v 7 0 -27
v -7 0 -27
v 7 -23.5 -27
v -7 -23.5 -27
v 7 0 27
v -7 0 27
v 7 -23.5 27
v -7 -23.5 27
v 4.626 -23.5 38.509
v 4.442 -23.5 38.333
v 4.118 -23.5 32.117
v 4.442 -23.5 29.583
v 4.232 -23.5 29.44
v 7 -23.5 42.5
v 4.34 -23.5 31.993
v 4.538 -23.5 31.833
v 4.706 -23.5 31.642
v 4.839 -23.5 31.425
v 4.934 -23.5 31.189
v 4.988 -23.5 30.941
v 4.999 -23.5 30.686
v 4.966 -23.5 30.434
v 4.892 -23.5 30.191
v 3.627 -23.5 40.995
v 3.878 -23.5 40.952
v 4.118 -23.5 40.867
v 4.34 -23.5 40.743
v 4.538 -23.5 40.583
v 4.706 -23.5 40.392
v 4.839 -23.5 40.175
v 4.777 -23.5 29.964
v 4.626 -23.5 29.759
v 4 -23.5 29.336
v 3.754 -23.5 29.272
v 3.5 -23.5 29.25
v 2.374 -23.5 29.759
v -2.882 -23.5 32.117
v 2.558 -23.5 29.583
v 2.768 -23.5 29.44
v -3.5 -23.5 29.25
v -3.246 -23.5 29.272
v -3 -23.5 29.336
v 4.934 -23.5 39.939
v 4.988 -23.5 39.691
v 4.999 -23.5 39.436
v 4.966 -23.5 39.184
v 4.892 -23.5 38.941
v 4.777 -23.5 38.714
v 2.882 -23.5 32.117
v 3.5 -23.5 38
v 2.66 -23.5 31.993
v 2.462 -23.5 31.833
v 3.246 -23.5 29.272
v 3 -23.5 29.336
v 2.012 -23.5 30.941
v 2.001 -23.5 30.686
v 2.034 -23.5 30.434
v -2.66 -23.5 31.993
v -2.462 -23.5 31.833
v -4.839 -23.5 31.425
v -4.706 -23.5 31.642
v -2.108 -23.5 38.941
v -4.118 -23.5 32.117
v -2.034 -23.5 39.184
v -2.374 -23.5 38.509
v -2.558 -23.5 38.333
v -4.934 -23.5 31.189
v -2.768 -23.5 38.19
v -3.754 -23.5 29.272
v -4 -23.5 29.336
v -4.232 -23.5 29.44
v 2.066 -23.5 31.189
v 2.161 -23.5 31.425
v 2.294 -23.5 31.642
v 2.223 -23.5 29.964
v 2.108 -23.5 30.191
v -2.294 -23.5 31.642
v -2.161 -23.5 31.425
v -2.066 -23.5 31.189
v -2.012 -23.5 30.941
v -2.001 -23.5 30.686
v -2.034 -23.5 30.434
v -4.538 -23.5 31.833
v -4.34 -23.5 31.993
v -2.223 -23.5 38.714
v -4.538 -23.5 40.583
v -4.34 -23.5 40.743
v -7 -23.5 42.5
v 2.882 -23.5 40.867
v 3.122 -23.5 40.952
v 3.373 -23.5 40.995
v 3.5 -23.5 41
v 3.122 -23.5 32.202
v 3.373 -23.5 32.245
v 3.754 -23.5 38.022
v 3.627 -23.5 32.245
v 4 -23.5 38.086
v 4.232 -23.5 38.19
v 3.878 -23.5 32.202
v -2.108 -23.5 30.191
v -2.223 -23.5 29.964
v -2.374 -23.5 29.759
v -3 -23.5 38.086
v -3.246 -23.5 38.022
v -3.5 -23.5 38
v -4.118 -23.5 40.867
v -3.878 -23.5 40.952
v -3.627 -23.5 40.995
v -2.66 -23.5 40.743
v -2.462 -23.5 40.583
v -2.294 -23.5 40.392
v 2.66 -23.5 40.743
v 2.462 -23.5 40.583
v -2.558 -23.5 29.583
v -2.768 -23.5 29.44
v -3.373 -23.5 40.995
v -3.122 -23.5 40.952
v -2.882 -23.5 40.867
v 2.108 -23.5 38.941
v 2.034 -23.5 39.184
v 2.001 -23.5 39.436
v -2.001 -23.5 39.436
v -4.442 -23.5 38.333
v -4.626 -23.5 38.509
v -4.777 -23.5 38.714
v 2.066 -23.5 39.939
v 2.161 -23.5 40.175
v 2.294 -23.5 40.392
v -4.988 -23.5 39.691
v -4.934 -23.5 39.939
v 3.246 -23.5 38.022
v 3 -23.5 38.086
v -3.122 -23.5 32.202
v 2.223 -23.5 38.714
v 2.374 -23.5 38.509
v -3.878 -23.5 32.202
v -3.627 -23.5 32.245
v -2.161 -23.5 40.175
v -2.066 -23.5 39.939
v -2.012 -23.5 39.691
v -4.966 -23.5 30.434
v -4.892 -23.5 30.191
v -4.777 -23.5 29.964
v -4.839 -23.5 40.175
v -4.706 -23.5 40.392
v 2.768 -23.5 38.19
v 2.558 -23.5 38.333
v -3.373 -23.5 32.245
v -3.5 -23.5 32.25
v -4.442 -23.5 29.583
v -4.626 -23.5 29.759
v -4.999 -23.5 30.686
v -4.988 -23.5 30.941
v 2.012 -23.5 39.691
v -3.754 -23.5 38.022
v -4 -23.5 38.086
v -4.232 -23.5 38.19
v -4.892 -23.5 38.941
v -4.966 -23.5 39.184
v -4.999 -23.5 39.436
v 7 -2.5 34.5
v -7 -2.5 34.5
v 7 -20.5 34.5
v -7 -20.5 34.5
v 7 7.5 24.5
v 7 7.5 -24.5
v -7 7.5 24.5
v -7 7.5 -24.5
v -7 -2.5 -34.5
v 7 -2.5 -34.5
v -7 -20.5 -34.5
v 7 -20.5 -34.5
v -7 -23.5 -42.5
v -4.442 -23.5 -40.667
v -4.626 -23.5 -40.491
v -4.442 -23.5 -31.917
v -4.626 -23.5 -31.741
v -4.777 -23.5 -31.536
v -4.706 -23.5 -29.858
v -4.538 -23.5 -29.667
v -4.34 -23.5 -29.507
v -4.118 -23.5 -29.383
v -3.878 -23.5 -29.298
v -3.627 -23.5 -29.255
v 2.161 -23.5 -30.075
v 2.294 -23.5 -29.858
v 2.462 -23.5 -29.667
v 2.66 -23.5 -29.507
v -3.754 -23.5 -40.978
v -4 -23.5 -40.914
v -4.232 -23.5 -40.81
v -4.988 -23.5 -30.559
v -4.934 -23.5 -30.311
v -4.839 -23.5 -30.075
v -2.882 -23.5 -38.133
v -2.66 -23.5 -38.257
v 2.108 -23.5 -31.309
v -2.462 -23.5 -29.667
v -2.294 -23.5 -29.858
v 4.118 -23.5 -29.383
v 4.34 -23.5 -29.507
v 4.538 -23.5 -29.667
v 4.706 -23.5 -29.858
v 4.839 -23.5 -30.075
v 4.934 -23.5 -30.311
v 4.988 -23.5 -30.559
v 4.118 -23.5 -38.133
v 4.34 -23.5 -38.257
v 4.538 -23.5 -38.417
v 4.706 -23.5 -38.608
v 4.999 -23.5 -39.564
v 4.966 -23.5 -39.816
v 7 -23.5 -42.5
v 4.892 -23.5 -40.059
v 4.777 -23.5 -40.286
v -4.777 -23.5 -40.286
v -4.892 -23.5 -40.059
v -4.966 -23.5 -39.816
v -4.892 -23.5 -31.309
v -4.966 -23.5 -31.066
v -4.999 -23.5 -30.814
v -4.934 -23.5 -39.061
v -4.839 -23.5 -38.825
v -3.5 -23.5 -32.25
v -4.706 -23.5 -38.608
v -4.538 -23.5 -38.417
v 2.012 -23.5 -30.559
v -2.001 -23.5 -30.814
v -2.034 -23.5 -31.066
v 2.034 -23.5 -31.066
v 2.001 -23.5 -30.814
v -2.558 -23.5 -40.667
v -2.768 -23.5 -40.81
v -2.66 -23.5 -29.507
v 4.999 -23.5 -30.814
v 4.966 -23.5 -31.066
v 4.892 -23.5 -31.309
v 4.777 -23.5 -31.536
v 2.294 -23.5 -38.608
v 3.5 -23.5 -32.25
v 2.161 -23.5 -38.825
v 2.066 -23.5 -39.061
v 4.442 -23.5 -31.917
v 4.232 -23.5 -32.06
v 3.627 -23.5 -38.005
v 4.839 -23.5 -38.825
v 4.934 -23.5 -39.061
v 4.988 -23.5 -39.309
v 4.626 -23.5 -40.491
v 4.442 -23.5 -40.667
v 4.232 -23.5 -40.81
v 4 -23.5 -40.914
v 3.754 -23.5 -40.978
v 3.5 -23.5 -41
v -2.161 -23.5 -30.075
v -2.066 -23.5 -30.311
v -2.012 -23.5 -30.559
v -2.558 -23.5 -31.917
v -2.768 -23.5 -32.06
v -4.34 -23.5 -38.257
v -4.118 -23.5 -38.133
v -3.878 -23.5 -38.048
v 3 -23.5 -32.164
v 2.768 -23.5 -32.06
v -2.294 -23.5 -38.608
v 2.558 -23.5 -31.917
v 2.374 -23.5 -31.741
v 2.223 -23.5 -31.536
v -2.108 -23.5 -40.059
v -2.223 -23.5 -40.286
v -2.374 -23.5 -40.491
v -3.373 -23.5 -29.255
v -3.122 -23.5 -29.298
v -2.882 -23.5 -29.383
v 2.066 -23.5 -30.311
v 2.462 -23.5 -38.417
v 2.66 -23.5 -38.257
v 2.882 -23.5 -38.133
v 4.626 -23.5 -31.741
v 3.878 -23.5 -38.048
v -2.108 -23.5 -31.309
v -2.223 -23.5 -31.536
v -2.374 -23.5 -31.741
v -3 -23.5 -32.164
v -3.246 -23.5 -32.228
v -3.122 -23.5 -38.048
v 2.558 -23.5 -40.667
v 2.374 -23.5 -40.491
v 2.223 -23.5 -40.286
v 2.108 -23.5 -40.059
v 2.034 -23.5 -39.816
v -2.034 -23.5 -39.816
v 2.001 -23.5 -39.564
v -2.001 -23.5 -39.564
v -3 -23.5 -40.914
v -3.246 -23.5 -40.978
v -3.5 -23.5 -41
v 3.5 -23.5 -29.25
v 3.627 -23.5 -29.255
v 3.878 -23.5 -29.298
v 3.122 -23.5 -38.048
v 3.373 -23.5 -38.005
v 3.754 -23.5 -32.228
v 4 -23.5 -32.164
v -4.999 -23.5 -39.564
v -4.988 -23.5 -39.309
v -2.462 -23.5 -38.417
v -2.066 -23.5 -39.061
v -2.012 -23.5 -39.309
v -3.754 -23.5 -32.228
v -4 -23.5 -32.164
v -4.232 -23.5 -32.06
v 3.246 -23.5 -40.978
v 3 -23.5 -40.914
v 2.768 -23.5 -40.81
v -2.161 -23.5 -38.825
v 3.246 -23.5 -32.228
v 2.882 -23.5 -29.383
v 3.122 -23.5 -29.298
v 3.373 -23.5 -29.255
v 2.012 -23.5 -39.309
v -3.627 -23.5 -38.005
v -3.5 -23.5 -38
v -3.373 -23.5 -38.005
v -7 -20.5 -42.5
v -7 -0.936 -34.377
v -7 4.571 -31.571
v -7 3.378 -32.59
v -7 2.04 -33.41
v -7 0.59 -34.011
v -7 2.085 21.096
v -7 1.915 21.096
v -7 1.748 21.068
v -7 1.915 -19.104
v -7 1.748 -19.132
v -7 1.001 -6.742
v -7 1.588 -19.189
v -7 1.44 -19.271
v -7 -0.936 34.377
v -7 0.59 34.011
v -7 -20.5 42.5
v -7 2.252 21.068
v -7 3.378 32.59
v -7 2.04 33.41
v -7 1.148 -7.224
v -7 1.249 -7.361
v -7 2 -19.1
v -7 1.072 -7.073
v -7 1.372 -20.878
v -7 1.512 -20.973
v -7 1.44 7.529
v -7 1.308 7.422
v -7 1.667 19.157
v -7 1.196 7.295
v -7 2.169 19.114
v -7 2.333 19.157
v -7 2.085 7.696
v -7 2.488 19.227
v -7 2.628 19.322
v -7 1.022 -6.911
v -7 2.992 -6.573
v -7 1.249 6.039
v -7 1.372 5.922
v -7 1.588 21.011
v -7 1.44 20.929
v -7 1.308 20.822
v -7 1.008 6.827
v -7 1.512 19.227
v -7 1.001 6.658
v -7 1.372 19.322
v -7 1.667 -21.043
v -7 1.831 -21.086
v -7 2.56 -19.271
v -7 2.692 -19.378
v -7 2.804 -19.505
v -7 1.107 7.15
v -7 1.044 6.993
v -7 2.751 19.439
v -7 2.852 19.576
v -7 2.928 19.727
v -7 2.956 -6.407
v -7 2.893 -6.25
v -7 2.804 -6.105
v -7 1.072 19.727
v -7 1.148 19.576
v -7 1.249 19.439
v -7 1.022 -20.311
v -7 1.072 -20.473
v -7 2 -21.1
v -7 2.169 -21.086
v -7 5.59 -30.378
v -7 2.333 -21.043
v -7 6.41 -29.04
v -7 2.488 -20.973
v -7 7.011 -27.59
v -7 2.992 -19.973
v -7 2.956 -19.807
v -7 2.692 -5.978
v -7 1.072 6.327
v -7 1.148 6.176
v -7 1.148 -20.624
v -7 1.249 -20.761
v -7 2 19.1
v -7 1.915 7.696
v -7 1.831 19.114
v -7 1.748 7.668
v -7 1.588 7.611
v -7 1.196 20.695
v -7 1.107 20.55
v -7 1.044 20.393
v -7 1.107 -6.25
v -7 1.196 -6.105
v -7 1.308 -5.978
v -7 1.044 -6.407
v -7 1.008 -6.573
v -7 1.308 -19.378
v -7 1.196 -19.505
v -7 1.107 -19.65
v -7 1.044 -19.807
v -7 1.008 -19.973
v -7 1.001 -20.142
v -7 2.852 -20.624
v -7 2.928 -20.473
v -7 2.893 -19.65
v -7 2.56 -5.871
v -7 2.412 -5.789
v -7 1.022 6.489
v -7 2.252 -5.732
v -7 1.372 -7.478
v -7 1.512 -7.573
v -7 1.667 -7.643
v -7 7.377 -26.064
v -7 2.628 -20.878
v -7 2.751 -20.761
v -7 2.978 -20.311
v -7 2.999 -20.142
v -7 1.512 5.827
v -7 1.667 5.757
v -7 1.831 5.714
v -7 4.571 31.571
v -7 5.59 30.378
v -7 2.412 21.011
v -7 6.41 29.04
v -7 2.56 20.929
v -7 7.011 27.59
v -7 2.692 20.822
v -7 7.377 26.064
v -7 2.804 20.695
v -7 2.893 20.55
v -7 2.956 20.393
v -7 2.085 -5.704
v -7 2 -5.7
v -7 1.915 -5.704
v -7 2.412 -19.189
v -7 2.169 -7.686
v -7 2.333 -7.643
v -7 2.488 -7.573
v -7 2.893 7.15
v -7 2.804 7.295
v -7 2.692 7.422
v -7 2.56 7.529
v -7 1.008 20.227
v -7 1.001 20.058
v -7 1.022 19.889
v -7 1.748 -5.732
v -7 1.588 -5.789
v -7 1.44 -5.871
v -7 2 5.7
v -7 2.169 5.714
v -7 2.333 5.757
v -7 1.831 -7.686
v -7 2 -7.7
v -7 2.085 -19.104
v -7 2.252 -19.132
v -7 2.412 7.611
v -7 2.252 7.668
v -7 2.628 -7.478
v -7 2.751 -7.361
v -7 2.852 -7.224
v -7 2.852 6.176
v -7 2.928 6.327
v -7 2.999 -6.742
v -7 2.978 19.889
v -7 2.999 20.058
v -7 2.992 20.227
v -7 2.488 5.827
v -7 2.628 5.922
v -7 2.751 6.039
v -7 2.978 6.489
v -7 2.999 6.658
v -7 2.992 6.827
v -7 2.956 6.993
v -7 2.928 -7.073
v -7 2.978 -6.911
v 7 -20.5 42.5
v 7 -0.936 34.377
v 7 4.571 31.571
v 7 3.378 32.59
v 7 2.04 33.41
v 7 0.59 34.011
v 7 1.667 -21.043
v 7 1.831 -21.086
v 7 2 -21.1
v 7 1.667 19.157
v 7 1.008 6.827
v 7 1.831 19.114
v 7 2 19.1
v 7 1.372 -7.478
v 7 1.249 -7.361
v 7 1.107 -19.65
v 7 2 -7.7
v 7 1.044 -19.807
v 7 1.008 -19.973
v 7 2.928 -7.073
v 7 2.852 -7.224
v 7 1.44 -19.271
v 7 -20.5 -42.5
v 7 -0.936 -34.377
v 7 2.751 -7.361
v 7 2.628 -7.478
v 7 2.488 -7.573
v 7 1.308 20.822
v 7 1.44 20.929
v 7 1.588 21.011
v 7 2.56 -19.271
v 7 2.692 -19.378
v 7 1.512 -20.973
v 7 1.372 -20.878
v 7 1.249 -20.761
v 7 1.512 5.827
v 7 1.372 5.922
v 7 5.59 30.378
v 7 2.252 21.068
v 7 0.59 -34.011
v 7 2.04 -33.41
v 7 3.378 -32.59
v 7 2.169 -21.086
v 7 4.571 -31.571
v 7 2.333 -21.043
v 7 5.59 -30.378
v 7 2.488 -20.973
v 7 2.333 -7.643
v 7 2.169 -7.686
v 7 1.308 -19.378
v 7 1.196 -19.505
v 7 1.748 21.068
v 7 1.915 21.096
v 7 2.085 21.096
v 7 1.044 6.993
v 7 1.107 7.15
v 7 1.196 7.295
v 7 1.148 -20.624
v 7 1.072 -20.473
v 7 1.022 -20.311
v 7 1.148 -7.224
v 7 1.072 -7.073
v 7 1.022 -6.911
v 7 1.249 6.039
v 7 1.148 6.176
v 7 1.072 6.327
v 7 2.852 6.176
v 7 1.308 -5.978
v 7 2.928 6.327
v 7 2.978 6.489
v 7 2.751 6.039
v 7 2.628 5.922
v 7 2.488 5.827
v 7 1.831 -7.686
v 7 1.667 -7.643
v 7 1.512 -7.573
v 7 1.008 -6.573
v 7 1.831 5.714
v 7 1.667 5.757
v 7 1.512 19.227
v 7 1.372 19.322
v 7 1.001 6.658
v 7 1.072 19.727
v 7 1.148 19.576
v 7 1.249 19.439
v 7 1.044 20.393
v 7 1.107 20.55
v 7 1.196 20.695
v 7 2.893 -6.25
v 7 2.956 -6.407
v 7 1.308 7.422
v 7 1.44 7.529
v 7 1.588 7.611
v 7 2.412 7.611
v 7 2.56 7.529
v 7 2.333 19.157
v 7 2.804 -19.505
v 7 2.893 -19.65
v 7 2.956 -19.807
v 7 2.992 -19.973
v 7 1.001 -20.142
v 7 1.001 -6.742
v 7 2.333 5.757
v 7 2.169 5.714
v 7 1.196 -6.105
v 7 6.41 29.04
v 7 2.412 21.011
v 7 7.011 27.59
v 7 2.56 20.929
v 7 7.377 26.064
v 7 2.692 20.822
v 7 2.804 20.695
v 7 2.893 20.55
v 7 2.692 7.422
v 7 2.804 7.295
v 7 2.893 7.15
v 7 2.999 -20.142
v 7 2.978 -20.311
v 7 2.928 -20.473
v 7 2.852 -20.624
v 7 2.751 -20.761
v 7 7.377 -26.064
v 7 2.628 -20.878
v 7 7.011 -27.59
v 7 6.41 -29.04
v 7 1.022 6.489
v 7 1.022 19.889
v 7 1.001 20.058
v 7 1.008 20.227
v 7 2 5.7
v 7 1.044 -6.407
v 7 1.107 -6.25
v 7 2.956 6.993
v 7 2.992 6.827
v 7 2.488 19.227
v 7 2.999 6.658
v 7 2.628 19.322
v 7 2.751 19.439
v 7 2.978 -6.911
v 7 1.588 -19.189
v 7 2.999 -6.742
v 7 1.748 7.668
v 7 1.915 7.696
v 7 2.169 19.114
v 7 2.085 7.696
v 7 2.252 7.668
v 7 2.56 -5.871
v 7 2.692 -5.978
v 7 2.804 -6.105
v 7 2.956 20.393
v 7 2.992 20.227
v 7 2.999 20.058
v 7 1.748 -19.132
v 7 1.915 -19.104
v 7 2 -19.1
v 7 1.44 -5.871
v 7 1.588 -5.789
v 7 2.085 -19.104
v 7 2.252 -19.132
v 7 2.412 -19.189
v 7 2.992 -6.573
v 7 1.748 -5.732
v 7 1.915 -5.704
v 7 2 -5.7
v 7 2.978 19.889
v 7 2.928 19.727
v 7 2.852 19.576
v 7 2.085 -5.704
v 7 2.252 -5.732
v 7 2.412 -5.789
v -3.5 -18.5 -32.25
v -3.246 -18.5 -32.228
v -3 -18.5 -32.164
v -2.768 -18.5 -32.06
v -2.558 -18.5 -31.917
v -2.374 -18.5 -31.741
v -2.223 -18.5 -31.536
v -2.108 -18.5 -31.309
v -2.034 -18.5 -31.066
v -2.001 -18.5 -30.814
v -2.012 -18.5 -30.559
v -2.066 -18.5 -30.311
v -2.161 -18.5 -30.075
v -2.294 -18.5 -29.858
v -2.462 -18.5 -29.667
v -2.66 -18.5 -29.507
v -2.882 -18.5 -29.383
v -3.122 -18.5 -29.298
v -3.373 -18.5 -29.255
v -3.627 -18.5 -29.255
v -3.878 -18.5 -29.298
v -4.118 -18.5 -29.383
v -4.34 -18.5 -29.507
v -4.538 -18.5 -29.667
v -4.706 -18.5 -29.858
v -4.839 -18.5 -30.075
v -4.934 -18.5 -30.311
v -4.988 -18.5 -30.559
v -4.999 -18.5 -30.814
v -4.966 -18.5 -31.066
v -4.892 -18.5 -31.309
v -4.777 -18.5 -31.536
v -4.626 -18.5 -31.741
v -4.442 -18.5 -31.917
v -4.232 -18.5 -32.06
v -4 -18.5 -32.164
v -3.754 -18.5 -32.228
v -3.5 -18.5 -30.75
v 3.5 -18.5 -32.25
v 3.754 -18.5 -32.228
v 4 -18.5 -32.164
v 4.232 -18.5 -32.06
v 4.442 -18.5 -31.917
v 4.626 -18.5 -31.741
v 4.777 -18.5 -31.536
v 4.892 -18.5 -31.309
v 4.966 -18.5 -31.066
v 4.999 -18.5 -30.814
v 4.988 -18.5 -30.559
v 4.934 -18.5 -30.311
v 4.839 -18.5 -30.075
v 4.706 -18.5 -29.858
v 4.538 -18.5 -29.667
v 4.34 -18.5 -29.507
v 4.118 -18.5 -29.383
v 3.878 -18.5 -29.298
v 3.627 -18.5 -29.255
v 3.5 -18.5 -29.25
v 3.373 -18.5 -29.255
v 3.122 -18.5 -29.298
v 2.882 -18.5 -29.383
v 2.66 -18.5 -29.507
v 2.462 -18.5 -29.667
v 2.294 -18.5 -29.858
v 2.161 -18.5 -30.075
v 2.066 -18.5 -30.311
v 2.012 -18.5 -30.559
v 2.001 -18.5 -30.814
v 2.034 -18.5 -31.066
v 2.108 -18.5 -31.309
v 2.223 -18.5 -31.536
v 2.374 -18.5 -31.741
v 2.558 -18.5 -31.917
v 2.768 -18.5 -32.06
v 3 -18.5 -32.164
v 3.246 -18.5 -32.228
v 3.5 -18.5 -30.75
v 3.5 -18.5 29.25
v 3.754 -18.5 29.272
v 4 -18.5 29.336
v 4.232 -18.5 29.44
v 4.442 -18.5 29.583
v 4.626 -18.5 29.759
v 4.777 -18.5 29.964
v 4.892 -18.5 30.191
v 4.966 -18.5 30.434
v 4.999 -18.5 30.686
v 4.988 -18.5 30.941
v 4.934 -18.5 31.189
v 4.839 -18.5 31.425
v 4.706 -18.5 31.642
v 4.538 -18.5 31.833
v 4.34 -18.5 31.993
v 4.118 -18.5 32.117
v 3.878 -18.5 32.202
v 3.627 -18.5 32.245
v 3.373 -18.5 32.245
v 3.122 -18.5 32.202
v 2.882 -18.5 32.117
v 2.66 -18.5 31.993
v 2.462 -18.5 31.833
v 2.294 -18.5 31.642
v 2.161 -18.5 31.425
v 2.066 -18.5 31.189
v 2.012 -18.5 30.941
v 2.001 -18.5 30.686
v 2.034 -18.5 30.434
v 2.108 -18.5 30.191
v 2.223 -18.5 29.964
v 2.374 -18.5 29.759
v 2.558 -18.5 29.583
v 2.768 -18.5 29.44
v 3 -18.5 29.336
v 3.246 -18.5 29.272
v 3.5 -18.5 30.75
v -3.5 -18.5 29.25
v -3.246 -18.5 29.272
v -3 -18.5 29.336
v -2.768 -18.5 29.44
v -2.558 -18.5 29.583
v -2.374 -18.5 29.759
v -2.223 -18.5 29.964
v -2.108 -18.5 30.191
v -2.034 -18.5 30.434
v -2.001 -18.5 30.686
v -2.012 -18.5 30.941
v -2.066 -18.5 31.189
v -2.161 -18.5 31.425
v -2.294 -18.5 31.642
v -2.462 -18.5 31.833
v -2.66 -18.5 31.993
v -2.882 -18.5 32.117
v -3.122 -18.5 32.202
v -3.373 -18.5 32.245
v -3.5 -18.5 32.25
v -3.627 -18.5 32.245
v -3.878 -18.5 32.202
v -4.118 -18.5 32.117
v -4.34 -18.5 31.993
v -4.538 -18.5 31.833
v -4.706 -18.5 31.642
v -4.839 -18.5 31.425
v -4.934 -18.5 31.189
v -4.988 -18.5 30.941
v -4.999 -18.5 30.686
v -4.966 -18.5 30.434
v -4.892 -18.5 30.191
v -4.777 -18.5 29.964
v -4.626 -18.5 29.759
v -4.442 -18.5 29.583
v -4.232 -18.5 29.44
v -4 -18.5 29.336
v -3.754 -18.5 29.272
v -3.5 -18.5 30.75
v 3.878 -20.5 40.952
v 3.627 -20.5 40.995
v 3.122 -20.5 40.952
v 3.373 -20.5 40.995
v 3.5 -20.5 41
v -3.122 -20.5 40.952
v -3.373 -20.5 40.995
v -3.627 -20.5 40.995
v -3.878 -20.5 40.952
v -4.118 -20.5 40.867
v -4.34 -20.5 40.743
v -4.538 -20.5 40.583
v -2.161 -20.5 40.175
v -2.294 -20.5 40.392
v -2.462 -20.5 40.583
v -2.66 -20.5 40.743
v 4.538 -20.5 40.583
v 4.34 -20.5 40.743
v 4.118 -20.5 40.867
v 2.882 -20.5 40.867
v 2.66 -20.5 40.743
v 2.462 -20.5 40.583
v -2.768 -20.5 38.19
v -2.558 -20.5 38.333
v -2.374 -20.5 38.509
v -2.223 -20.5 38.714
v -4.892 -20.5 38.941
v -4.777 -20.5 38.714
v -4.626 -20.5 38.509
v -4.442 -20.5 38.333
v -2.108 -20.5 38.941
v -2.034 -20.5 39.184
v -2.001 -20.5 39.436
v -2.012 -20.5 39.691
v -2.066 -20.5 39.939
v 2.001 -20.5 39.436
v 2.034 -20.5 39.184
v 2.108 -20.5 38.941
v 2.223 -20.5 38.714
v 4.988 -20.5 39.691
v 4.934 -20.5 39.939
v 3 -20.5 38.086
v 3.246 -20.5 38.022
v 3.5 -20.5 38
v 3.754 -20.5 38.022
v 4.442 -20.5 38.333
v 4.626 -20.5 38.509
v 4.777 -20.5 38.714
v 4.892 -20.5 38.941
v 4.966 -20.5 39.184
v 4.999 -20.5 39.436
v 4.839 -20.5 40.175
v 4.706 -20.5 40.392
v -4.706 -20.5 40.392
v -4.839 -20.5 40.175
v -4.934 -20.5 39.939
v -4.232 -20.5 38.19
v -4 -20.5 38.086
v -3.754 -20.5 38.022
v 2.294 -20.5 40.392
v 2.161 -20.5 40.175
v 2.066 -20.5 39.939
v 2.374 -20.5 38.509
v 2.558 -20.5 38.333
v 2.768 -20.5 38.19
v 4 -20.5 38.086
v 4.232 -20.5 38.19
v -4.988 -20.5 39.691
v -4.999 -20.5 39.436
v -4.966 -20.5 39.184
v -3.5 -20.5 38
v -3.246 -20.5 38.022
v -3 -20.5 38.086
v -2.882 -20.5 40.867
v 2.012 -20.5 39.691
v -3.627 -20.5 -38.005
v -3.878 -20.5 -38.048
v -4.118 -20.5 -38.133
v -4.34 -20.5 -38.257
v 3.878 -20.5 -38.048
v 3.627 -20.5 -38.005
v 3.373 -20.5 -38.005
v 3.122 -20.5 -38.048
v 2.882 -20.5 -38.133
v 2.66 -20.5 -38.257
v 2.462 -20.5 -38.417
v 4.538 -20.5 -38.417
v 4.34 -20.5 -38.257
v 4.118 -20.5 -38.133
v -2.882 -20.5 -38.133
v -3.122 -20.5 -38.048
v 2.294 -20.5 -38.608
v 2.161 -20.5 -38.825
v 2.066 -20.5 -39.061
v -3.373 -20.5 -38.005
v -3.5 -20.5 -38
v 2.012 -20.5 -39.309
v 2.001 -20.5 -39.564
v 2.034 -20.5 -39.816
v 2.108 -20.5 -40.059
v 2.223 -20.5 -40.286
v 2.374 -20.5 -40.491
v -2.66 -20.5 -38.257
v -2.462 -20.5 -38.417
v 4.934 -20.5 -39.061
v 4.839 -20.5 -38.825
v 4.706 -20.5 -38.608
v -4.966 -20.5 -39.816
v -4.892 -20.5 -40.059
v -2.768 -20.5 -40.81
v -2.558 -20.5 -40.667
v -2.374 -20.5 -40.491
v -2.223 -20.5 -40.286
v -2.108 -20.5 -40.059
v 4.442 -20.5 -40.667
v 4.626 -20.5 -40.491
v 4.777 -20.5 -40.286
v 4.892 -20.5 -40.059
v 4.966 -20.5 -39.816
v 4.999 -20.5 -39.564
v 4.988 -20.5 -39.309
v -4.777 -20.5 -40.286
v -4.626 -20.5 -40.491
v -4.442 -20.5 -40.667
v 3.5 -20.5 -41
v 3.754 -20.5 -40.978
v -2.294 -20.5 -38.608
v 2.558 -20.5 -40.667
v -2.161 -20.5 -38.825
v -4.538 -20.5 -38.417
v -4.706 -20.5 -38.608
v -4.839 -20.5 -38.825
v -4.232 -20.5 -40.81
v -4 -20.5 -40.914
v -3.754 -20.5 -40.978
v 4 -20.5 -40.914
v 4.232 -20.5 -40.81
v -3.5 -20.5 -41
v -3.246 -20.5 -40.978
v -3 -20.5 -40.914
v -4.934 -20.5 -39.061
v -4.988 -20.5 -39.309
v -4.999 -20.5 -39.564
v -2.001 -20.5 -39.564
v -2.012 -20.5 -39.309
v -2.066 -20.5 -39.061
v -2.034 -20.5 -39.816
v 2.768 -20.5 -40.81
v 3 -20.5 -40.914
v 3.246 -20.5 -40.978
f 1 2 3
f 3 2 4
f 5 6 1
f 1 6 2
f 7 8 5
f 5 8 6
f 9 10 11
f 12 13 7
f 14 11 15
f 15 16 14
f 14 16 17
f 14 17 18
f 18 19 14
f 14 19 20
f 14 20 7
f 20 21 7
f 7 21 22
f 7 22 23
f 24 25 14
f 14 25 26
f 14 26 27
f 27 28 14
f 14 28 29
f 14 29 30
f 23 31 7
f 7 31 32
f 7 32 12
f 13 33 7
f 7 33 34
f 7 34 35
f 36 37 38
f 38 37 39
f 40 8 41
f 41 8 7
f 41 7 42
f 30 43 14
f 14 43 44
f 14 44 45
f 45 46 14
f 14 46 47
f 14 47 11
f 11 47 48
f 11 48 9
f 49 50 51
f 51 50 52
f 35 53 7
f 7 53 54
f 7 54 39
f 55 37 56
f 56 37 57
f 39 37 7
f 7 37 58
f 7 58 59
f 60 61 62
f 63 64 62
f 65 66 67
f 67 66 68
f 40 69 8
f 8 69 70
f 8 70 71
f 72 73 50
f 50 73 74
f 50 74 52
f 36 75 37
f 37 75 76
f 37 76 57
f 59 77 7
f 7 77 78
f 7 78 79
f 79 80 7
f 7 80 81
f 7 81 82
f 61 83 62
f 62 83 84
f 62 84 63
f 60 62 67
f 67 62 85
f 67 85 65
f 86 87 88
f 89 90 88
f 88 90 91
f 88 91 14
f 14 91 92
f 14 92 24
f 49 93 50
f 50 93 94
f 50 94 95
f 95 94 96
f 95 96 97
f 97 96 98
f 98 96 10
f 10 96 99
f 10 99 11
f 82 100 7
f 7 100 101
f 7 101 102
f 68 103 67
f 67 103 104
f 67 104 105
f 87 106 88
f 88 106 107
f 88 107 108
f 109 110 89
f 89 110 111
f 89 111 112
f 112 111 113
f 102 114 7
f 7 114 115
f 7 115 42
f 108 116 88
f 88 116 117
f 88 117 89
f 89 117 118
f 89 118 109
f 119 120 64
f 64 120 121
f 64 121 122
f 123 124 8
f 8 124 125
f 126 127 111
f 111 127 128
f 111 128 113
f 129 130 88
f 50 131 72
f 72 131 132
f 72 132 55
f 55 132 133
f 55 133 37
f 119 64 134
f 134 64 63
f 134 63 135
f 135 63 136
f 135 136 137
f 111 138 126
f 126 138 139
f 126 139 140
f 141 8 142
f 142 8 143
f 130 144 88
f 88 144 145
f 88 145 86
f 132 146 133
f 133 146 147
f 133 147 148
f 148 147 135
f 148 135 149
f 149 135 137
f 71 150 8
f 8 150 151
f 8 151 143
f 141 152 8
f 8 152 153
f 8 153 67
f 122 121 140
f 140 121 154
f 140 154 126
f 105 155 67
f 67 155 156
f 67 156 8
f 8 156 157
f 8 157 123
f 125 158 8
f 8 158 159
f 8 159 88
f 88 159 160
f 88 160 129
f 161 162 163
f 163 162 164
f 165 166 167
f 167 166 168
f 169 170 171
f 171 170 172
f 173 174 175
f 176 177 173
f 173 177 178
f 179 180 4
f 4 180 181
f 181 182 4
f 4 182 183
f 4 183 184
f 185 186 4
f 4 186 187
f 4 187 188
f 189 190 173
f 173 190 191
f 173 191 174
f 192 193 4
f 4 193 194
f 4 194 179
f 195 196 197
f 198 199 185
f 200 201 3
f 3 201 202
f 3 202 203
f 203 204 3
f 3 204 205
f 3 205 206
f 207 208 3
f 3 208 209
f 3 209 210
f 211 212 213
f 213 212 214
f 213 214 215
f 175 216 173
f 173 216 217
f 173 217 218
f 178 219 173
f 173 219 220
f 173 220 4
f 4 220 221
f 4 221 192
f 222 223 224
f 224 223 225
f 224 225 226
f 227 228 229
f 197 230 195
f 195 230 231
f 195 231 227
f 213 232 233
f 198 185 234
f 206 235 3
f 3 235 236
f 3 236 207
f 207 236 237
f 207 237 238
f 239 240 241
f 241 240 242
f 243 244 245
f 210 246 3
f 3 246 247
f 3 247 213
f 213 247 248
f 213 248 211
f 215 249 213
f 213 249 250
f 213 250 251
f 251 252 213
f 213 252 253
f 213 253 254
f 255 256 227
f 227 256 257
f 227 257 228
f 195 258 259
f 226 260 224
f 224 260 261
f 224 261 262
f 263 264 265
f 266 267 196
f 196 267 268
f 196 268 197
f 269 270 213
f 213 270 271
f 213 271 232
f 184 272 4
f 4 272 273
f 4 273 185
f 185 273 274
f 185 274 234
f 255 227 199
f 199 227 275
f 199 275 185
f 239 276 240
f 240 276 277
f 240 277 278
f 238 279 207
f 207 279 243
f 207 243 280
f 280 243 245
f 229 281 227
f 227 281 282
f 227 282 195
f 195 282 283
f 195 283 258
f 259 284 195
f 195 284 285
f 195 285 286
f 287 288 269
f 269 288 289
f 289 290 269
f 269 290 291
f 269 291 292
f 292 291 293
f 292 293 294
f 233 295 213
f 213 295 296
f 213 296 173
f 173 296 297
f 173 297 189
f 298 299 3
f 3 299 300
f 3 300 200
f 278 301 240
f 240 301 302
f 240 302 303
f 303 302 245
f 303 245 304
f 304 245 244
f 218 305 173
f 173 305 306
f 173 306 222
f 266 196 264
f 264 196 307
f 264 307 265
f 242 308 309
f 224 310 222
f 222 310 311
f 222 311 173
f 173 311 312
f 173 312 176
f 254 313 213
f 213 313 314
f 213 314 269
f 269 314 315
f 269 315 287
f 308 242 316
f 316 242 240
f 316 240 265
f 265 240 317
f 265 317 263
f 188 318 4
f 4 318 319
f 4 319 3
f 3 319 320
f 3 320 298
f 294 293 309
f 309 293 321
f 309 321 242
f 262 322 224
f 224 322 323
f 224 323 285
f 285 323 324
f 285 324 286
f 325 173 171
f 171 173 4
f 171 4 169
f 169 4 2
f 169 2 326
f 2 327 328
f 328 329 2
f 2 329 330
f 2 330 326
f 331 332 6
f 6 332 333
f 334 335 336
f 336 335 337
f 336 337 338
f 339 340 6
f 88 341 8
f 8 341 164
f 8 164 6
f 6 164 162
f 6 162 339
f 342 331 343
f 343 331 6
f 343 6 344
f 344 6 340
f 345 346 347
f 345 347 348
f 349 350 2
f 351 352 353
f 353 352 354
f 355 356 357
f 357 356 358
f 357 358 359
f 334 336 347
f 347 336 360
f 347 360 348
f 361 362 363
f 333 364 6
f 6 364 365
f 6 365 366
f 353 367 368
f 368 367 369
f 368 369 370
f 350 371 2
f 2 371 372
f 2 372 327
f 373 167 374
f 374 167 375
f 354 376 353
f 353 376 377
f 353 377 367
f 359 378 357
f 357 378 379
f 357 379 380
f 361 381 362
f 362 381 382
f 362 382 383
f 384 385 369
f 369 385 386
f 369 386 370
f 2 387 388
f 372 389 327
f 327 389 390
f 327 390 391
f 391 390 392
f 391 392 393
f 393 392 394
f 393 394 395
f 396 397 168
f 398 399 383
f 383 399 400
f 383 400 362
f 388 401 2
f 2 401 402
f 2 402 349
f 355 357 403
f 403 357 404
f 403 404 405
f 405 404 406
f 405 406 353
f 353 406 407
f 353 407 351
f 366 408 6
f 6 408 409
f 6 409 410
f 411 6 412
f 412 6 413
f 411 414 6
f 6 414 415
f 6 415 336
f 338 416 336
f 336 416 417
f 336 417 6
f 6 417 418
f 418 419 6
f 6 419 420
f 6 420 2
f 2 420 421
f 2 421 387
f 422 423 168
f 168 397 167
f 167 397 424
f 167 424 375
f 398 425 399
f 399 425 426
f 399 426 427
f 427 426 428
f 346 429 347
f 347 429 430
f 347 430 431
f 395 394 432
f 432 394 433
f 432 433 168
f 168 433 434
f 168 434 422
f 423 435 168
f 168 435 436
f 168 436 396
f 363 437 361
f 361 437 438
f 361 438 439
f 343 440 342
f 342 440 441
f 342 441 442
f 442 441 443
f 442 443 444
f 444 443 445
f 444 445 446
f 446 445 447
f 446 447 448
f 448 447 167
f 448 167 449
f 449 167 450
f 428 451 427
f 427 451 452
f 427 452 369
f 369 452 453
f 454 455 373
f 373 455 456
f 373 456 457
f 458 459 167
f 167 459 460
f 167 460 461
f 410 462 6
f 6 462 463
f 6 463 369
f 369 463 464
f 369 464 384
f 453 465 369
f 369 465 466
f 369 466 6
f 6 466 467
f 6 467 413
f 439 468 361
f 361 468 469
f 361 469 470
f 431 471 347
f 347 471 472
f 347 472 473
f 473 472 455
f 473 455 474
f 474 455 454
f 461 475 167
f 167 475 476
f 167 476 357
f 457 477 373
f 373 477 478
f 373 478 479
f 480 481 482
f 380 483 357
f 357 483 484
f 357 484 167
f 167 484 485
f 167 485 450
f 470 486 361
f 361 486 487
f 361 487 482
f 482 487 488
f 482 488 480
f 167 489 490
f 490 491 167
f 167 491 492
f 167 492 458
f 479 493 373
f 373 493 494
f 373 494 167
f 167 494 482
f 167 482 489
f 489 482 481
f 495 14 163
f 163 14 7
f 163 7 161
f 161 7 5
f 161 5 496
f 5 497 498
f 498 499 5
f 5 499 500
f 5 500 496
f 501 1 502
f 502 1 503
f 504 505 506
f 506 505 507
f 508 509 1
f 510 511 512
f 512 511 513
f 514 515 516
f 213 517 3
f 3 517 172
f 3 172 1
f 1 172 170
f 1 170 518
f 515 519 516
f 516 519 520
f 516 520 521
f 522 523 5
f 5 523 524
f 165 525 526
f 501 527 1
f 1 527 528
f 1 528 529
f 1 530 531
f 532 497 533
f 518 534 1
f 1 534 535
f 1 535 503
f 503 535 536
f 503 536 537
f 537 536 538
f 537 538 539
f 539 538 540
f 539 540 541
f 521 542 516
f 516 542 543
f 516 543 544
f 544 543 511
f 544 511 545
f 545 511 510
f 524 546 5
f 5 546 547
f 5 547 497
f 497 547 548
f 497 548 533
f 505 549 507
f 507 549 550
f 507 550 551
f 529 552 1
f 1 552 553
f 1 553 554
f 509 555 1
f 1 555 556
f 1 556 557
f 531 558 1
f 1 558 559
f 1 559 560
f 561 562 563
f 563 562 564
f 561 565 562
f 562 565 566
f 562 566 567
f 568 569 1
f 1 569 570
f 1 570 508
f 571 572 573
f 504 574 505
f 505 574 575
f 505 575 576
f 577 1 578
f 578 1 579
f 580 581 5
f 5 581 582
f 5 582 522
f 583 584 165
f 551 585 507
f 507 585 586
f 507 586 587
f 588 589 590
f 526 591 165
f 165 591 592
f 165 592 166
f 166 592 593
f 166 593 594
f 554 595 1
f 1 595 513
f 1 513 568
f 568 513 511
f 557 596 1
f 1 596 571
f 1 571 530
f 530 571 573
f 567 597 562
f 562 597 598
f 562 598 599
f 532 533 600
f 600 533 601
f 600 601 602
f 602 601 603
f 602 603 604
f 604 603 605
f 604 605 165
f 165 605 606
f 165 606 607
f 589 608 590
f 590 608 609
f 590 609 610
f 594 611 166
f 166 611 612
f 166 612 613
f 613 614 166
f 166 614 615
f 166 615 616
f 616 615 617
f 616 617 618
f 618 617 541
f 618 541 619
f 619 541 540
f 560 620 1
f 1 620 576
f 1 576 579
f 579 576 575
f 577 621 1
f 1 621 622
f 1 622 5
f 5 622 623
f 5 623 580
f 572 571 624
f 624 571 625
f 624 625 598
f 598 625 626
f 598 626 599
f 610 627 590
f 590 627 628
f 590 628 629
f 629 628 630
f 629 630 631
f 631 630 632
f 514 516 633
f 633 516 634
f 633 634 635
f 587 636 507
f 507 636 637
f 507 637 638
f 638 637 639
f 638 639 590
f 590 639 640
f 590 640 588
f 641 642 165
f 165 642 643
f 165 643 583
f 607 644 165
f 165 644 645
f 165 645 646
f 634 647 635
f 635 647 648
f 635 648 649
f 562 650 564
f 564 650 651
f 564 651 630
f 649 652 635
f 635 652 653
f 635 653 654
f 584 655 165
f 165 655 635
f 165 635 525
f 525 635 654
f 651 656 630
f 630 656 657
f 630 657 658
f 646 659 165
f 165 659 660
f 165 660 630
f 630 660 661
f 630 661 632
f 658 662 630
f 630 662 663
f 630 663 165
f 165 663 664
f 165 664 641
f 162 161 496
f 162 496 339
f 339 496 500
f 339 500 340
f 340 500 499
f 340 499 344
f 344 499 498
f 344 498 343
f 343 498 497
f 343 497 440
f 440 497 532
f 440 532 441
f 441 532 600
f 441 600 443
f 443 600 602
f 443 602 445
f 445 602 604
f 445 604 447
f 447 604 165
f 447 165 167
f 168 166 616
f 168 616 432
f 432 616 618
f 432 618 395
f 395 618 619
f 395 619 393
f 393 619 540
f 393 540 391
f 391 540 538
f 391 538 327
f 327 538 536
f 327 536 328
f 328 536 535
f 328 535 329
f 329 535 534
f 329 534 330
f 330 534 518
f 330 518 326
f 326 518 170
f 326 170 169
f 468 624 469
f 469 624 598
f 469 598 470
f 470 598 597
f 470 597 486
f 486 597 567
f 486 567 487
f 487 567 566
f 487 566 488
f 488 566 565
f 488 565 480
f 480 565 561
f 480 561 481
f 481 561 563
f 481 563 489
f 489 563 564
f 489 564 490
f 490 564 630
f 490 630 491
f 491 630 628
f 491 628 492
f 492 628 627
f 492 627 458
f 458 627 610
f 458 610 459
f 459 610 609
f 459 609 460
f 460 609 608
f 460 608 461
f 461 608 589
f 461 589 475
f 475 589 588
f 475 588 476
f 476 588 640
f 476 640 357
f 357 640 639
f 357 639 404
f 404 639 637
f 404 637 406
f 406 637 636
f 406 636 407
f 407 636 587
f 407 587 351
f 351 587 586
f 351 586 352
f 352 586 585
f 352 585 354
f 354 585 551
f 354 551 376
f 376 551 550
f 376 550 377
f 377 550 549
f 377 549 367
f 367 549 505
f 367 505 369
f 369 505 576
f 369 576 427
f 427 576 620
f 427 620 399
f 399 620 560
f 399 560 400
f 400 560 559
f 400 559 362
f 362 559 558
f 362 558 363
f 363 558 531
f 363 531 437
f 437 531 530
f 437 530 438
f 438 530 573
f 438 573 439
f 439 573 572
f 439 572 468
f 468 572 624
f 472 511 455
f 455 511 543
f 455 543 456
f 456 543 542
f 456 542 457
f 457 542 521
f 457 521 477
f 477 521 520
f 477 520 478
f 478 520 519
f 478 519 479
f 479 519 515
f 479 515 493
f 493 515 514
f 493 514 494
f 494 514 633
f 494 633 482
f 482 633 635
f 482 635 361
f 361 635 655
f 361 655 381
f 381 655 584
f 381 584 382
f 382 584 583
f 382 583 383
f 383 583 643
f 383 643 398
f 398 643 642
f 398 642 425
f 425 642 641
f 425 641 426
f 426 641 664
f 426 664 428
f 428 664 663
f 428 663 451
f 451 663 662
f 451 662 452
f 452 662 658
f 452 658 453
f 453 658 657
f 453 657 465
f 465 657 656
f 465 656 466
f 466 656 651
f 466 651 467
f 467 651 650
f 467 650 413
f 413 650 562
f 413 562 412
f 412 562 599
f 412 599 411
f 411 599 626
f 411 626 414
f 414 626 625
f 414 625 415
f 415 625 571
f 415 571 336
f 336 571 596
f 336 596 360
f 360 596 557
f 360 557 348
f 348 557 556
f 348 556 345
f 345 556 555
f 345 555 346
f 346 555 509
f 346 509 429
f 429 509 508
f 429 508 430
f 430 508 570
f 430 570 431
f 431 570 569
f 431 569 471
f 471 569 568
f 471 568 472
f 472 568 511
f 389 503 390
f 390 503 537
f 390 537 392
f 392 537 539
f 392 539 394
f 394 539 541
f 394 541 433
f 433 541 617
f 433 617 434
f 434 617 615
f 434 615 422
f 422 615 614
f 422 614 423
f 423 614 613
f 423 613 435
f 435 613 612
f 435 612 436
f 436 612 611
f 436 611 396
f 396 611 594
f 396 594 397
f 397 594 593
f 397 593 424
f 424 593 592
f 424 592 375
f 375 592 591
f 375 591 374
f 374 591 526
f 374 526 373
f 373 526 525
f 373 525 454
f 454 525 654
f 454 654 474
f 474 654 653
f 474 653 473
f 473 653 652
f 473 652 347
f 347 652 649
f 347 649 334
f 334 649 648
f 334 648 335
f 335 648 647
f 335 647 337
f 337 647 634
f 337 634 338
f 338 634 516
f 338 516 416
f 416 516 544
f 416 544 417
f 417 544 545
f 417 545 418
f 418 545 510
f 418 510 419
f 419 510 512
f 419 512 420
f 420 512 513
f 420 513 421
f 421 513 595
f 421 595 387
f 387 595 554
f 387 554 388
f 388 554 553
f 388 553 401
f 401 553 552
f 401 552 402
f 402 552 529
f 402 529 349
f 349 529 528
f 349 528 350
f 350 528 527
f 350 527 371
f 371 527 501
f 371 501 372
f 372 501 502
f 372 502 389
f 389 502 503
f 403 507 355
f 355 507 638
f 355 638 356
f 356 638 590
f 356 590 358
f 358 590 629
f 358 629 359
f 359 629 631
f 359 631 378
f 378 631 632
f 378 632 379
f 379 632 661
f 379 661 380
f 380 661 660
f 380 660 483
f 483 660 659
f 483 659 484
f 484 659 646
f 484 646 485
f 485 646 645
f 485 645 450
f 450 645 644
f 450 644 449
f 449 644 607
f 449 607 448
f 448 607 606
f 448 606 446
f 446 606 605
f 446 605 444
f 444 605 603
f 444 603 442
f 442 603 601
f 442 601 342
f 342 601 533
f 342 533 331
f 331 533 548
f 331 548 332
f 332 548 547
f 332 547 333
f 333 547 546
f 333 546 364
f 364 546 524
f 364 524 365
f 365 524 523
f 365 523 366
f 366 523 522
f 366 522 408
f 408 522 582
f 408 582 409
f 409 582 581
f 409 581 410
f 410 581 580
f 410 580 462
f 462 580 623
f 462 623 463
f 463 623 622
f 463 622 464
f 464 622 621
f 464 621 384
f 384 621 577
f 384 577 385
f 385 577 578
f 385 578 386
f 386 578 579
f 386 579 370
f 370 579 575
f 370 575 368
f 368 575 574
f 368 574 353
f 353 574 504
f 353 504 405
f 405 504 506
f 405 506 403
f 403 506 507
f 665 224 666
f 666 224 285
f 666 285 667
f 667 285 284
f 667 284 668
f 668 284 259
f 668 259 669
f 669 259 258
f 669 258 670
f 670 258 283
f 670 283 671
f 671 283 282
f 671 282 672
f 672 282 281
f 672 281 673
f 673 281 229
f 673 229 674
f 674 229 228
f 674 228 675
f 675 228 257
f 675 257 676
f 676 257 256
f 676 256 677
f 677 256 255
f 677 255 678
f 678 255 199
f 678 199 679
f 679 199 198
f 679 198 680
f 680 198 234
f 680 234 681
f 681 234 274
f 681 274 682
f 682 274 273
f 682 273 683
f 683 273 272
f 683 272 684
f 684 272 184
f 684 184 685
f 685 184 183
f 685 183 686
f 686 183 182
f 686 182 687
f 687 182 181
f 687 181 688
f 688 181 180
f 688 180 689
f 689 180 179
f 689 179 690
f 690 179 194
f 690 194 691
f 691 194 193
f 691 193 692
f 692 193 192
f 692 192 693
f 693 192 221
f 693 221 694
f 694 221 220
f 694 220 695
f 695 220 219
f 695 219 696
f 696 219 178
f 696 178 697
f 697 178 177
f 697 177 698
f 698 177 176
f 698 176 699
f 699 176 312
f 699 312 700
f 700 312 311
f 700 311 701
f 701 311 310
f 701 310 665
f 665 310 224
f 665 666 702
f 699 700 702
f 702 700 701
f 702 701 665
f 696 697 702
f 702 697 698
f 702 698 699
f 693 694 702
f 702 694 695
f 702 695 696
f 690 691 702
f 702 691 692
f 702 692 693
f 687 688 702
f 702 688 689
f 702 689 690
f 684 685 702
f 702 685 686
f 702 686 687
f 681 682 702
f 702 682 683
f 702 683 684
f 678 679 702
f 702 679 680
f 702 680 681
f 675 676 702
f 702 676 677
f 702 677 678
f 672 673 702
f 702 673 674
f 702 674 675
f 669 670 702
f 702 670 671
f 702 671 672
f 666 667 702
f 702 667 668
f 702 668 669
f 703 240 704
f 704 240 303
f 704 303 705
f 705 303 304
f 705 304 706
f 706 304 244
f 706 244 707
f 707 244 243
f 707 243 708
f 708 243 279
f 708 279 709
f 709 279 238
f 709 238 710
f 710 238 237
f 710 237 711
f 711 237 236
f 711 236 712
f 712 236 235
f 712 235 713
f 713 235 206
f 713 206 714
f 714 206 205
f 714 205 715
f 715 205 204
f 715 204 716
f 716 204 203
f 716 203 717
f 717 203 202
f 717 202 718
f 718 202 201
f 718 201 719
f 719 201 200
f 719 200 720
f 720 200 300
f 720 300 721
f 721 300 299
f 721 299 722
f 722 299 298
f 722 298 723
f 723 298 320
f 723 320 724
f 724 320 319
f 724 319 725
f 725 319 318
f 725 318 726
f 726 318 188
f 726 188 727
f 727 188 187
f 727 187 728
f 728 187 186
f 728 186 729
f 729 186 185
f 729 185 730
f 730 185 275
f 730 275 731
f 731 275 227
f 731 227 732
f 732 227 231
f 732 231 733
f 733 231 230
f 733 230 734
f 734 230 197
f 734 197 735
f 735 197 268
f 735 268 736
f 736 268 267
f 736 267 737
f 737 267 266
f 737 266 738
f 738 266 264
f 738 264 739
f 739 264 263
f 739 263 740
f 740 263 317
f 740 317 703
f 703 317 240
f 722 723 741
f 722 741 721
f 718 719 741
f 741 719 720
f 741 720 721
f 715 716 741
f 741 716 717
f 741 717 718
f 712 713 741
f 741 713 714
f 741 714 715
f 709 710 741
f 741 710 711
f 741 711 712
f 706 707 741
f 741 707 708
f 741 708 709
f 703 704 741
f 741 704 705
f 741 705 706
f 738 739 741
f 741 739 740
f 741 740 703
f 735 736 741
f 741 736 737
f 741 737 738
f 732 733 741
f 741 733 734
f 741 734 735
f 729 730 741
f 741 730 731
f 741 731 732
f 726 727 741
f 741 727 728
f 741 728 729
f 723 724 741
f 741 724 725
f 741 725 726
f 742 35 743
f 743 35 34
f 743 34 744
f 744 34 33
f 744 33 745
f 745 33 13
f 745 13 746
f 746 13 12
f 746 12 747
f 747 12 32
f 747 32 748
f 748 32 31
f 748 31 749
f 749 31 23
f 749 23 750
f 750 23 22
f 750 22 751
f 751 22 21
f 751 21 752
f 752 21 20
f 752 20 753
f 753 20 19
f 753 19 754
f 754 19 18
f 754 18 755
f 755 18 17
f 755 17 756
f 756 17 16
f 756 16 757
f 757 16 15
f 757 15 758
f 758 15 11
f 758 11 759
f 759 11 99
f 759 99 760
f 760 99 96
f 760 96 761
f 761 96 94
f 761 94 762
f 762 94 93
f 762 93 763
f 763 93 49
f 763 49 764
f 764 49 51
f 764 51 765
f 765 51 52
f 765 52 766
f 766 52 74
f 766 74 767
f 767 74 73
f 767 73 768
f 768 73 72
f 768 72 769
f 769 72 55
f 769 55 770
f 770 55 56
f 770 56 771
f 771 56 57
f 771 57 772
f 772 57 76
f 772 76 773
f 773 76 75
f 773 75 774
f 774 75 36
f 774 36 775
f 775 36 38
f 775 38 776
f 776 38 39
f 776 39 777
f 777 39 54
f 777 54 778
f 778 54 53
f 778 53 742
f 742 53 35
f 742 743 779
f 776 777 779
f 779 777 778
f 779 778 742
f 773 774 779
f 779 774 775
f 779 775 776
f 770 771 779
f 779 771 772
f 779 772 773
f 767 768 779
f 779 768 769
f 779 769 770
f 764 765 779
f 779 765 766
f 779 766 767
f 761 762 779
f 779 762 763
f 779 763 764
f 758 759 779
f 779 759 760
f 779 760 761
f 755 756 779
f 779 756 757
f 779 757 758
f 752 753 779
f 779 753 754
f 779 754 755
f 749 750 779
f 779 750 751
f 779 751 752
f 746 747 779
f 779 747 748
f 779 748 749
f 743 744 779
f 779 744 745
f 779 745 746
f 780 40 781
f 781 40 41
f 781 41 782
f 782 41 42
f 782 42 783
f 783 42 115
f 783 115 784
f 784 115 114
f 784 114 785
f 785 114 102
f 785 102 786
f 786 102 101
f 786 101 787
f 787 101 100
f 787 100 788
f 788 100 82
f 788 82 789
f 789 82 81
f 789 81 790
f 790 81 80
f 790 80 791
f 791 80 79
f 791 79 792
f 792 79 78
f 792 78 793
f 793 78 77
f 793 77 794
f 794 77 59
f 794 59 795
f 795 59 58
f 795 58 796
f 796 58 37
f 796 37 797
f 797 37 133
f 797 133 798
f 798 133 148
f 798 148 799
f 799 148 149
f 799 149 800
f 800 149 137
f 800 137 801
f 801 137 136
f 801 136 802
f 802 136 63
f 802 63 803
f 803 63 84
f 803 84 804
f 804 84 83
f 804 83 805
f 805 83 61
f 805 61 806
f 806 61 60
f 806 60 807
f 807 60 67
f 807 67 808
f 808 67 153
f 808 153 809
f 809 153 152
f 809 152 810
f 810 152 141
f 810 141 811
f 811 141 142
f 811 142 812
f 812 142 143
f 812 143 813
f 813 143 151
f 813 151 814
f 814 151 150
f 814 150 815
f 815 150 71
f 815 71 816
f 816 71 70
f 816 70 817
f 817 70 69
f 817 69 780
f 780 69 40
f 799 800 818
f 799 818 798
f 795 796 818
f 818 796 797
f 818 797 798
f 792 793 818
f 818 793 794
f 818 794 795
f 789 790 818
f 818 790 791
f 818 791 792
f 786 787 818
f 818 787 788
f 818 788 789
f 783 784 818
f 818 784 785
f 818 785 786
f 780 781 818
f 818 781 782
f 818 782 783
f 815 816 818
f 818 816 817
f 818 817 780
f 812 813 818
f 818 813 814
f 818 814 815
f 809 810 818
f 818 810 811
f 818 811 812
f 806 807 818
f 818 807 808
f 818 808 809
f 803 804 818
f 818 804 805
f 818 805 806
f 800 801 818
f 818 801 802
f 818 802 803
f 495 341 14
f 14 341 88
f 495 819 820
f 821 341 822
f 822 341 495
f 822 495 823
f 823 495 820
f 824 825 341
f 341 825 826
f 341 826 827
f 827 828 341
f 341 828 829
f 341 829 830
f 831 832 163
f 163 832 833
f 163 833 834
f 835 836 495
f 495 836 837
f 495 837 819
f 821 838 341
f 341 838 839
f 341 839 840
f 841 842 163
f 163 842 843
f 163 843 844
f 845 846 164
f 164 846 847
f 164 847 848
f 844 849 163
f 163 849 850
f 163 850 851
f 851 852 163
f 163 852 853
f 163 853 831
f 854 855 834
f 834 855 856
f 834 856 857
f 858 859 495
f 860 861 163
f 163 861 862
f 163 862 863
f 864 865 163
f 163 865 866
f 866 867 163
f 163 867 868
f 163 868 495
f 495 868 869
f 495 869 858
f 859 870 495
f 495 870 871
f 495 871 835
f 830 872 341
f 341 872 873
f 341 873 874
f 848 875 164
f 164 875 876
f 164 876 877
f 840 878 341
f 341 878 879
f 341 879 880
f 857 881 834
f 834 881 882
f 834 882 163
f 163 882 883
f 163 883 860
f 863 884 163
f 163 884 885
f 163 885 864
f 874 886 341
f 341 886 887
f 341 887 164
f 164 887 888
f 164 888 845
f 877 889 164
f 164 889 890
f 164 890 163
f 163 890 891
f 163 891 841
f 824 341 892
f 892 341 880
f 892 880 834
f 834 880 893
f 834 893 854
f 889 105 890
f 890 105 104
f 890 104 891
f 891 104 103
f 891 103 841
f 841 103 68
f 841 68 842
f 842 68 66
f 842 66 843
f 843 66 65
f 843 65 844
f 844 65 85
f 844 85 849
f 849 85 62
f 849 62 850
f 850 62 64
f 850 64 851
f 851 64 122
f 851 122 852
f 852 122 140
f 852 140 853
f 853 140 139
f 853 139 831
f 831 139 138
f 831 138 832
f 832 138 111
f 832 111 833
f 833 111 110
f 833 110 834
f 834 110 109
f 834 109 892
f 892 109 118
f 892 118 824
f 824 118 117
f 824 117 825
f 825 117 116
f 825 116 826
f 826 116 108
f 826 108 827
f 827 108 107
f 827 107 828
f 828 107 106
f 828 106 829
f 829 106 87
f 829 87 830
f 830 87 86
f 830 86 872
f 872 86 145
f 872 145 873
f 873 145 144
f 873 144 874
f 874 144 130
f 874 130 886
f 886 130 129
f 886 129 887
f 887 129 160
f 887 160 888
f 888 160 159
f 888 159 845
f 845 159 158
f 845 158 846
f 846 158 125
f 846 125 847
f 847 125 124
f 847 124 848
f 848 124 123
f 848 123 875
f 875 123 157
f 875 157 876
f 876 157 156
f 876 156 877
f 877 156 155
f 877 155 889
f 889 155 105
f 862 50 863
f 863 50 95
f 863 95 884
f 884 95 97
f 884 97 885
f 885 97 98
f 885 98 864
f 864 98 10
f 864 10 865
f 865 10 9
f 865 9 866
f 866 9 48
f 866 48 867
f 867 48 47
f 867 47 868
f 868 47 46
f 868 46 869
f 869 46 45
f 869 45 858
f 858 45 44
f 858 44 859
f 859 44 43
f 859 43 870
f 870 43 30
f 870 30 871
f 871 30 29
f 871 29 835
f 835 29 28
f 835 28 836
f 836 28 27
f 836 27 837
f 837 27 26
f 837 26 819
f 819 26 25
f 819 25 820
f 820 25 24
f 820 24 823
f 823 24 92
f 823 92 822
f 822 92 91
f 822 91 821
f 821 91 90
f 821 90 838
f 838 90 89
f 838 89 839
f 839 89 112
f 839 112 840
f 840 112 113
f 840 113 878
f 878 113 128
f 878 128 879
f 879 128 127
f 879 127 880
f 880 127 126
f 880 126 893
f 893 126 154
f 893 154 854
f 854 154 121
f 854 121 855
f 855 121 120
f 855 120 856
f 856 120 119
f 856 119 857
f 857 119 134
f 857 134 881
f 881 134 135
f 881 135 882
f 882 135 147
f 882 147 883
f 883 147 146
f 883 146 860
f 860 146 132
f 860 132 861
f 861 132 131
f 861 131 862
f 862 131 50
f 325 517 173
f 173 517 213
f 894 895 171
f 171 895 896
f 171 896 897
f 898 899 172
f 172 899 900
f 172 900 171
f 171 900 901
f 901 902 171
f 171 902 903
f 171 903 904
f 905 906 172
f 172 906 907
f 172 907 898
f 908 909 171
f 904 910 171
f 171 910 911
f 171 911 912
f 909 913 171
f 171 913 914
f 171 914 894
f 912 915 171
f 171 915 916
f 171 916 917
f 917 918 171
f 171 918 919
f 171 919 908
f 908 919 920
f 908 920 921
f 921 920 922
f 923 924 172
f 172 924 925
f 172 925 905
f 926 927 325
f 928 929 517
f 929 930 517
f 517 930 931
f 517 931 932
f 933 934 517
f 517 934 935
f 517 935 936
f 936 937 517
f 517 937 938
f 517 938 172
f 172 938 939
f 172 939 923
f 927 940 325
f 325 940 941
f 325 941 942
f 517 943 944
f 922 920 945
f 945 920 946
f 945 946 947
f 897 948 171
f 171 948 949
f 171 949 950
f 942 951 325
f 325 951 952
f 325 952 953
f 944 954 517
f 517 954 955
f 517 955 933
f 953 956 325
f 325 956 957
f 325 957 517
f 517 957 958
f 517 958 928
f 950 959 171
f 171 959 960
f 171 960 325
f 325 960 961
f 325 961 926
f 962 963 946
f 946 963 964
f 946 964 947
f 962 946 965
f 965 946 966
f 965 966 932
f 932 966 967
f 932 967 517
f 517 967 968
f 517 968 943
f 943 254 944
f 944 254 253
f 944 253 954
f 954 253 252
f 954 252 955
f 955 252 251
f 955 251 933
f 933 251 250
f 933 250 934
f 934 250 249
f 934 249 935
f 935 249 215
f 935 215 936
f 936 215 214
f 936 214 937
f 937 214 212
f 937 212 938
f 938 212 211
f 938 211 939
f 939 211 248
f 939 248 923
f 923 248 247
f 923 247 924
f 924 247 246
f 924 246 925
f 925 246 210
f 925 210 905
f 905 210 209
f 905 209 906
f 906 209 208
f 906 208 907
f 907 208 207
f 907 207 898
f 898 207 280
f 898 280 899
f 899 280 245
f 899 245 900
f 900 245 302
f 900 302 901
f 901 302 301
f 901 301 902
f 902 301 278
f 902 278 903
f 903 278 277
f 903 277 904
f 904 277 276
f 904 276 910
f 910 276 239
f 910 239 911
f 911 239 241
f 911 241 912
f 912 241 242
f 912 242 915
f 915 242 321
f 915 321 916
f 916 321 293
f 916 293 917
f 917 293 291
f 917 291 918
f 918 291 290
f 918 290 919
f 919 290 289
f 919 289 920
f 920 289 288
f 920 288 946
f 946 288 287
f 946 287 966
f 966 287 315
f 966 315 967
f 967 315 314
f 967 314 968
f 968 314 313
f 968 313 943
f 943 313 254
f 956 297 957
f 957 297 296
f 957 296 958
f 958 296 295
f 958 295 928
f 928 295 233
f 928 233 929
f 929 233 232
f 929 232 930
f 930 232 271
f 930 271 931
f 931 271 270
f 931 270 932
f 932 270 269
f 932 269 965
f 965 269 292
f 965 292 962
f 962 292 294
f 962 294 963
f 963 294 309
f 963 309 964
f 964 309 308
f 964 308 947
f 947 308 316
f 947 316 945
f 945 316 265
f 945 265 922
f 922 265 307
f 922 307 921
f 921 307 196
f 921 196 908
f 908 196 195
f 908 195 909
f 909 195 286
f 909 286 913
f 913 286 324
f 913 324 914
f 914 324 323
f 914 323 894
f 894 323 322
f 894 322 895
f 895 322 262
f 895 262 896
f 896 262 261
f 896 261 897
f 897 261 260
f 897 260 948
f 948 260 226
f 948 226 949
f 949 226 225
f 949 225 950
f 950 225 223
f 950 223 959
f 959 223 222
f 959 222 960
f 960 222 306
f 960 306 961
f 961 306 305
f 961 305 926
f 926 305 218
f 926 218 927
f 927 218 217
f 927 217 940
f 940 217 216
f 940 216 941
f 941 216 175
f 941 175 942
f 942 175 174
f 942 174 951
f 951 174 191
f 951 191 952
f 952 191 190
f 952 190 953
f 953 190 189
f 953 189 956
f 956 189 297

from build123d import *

# Parameters (mm, degrees)
BOSS_EXTRUDE1_DEPTH      = 7
BOSS_EXTRUDE1_DEPTH_BACK = 7
FILLET1_R                = 10
SKETCH2_R                = 1
CUT_EXTRUDE1_DEPTH       = 45.028399926
SKETCH3_R                = 1.5
CUT_EXTRUDE2_DEPTH       = 5
SKETCH4_W                = 14
SKETCH4_H                = 8
SKETCH4_R                = 1.5
BOSS_EXTRUDE2_DEPTH      = 3


with BuildPart() as part:
    # Sketch1 → Boss-Extrude1 (new, two sides: drawn at the far end of the back side and taken through both)
    with BuildSketch(Plane(origin=(0, 0, 0), x_dir=(0, 0, -1), z_dir=(1, 0, 0)).offset(-BOSS_EXTRUDE1_DEPTH_BACK)):
        Polygon((-27, 0), (27, 0), (27, -23.5), (34.5, -23.5), (34.5, 7.5), (-34.5, 7.5), (-34.5, -23.5), (-27, -23.5), align=None)
    extrude(amount=BOSS_EXTRUDE1_DEPTH + BOSS_EXTRUDE1_DEPTH_BACK)

    # Fillet1
    fillet1_edges = [part.edges().sort_by_distance(p)[0] for p in [
        (0, 7.5, 34.5),
        (0, 7.5, -34.5),
    ]]
    fillet(fillet1_edges, radius=FILLET1_R)

    # Sketch2 → Cut-Extrude1 (cut, through all)
    with BuildSketch(Plane(origin=(7, 0, 0), x_dir=(0, 0, -1), z_dir=(1, 0, 0))):
        with Locations((-6.7, 2)):
            Circle(SKETCH2_R)
        with Locations((-20.1, 2)):
            Circle(SKETCH2_R)
        with Locations((20.1, 2)):
            Circle(SKETCH2_R)
        with Locations((6.7, 2)):
            Circle(SKETCH2_R)
    extrude(amount=-CUT_EXTRUDE1_DEPTH, mode=Mode.SUBTRACT)

    # Sketch3 → Cut-Extrude2 (cut)
    with BuildSketch(Plane.XZ.offset(23.5)):
        with Locations((-3.5, -30.75)):
            Circle(SKETCH3_R)
        with Locations((3.5, -30.75)):
            Circle(SKETCH3_R)
        with Locations((-3.5, 30.75)):
            Circle(SKETCH3_R)
        with Locations((3.5, 30.75)):
            Circle(SKETCH3_R)
    extrude(amount=-CUT_EXTRUDE2_DEPTH, mode=Mode.SUBTRACT)

    # Sketch4 → Boss-Extrude2 (add)
    # profile 1 of 2: a face of its own
    with BuildSketch(Plane.XZ.offset(23.5)):
        with Locations((0, 38.5)):
            Rectangle(SKETCH4_W, SKETCH4_H)
        with Locations((-3.5, 39.5)):
            Circle(SKETCH4_R, mode=Mode.SUBTRACT)
        with Locations((3.5, 39.5)):
            Circle(SKETCH4_R, mode=Mode.SUBTRACT)
    # profile 2 of 2: a face of its own
    with BuildSketch(Plane.XZ.offset(23.5)):
        with Locations((0, -38.5)):
            Rectangle(SKETCH4_W, SKETCH4_H)
        with Locations((3.5, -39.5)):
            Circle(SKETCH4_R, mode=Mode.SUBTRACT)
        with Locations((-3.5, -39.5)):
            Circle(SKETCH4_R, mode=Mode.SUBTRACT)
    extrude(amount=-BOSS_EXTRUDE2_DEPTH)


solid = part.part
